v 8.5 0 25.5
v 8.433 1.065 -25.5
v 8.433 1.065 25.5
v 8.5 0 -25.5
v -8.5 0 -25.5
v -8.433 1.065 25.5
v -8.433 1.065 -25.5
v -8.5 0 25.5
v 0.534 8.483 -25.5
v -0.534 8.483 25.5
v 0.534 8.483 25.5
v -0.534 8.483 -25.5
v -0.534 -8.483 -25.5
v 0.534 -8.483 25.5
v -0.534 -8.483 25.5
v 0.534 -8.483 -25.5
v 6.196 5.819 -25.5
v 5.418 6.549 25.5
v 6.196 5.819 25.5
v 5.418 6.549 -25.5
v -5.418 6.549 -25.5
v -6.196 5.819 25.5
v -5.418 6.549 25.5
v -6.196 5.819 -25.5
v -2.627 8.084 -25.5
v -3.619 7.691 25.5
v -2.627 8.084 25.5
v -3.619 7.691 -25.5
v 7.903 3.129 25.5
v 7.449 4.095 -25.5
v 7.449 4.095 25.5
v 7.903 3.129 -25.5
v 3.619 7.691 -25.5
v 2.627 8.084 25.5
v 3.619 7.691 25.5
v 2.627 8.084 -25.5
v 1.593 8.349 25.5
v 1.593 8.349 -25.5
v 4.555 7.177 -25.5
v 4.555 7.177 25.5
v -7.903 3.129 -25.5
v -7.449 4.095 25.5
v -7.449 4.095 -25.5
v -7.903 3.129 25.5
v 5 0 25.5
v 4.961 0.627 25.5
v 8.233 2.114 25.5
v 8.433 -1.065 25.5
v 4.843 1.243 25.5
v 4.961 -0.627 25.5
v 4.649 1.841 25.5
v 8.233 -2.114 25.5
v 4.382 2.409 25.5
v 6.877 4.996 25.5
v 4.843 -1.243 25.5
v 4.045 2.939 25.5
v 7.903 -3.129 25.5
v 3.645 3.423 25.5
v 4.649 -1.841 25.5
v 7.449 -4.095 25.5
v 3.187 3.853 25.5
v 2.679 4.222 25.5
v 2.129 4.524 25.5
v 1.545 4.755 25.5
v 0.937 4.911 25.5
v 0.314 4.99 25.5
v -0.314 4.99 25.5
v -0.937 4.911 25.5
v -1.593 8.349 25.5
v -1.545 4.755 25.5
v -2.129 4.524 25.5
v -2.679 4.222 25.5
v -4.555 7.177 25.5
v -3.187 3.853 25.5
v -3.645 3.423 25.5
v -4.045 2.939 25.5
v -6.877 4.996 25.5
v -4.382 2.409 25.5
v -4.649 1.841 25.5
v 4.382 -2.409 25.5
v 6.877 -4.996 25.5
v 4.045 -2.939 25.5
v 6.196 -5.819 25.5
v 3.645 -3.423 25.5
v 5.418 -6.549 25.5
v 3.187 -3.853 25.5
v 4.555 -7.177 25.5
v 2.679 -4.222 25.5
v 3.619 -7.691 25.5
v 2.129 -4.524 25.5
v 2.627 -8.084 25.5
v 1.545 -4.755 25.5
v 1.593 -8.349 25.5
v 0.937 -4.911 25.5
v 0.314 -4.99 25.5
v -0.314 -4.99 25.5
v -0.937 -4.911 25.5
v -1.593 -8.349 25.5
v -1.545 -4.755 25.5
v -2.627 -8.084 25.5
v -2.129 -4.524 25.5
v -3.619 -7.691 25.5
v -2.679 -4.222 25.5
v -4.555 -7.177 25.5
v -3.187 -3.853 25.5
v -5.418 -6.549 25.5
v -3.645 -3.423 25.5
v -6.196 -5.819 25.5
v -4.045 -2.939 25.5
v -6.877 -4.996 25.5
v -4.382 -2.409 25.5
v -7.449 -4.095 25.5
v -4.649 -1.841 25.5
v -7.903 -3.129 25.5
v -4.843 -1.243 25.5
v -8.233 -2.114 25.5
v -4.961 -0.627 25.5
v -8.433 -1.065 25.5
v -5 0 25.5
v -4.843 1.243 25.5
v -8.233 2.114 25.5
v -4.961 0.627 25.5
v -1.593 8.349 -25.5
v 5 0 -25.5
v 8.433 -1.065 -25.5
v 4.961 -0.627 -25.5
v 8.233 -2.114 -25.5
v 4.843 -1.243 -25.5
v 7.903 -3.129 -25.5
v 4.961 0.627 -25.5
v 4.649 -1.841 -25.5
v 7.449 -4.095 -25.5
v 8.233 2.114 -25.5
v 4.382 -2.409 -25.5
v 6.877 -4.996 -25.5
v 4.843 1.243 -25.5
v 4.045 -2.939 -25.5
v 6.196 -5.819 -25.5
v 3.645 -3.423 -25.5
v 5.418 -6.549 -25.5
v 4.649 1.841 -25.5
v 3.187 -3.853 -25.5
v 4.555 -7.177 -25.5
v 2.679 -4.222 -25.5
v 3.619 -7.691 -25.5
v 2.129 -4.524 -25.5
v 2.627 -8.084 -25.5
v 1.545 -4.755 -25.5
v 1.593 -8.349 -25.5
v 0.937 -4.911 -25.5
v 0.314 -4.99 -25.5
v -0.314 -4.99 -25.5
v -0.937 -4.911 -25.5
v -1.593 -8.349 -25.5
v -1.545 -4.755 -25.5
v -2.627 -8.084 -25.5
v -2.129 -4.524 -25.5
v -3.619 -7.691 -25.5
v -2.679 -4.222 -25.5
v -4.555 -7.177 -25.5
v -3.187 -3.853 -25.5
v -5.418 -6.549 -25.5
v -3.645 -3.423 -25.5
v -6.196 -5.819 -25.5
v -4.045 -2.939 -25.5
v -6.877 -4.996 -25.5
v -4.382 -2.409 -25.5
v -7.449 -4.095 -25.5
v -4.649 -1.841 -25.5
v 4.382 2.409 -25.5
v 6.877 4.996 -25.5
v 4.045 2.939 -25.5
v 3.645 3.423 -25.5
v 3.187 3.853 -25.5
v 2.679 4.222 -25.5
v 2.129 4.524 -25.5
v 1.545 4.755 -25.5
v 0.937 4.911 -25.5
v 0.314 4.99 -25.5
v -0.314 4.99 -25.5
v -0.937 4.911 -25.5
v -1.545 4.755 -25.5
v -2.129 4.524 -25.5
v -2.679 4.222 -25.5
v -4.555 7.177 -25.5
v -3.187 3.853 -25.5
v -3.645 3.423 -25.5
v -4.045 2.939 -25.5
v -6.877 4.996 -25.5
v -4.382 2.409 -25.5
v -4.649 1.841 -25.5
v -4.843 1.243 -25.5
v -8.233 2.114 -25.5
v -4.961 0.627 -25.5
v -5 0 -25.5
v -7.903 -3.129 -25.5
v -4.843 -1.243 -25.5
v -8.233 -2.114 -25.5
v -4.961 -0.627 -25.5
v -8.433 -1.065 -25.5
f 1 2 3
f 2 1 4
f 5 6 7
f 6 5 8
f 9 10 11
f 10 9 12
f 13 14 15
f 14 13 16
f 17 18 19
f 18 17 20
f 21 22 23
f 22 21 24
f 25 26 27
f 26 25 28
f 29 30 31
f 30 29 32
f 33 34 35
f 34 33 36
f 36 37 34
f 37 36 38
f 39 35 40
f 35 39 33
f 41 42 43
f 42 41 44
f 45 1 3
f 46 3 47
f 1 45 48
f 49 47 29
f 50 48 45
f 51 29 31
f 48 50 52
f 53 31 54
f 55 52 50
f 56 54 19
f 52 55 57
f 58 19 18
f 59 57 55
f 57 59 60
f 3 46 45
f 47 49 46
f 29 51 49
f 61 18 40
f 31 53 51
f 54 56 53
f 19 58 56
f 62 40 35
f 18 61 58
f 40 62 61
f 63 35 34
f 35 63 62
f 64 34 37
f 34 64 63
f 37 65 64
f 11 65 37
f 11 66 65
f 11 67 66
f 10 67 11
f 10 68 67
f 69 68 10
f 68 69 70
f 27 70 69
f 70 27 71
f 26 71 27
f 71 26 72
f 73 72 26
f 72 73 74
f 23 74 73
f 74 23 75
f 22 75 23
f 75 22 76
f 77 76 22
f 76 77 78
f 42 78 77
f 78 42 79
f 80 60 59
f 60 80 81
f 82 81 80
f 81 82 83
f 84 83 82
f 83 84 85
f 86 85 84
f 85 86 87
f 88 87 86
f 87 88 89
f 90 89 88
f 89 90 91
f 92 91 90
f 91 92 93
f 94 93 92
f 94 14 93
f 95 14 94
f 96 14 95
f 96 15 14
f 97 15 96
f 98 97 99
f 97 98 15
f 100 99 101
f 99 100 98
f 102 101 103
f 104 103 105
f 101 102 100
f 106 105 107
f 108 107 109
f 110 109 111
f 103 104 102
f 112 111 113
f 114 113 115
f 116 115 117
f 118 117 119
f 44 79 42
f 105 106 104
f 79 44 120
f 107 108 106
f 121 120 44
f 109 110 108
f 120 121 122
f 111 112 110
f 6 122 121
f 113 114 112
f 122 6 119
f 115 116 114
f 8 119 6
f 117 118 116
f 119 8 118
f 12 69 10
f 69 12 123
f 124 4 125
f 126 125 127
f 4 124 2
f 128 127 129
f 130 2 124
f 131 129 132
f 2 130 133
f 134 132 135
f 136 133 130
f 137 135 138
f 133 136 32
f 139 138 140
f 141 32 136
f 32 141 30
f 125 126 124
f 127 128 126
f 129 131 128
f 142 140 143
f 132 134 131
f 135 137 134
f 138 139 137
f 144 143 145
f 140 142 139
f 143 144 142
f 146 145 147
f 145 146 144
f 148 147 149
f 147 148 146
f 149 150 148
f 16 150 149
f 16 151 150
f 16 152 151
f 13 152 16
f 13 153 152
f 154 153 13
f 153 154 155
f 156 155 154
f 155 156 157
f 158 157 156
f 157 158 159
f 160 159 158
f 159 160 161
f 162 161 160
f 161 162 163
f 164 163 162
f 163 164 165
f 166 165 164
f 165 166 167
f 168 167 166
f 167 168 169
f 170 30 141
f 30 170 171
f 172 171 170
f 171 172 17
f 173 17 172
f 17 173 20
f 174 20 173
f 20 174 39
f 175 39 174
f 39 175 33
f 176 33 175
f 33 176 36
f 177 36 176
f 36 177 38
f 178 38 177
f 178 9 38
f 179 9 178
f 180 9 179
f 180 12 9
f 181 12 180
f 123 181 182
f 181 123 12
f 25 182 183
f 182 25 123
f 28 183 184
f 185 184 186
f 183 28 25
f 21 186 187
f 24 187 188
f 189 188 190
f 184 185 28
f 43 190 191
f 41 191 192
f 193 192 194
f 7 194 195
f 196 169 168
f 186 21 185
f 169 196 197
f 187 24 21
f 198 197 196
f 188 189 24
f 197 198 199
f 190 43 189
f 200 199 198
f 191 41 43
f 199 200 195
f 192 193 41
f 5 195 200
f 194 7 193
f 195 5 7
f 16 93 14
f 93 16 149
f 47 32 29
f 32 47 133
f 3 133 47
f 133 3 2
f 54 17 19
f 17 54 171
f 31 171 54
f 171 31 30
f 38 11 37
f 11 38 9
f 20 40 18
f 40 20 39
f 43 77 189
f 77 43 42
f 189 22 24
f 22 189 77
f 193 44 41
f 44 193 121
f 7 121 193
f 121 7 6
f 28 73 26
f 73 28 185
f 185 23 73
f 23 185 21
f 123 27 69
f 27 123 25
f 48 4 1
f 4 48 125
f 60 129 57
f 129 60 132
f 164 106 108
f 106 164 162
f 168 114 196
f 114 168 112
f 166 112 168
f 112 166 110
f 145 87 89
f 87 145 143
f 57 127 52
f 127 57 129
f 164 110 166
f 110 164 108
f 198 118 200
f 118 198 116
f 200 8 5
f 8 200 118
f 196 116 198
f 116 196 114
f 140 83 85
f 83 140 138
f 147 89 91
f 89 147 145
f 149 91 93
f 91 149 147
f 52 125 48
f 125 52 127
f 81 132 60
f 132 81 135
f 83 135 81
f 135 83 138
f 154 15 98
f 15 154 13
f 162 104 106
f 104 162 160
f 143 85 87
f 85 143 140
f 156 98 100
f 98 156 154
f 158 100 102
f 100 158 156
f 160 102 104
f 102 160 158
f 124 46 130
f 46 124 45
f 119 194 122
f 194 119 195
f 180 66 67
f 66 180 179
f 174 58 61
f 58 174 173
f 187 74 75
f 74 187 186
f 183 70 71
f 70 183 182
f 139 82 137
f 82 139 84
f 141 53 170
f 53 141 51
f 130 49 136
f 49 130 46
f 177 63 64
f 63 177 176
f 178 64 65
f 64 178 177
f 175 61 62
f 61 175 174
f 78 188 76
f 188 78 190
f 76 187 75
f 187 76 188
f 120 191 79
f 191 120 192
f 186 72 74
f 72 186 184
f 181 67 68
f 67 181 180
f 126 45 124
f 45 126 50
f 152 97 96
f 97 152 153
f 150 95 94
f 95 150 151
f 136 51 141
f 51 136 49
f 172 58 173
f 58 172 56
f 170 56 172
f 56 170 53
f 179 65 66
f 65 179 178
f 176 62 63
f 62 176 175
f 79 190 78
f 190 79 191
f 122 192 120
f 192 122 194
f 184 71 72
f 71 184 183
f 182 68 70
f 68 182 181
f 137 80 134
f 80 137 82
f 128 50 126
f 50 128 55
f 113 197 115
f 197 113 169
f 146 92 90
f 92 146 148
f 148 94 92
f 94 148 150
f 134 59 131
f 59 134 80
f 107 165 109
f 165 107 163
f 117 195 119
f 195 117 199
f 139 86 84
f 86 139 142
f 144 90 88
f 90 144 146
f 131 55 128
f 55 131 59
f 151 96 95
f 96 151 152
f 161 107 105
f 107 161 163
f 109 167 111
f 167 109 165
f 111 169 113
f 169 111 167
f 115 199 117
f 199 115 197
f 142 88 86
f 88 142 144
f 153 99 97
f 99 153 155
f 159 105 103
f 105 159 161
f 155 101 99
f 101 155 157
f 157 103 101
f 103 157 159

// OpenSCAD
$fn = 50;


difference() {
	union() {
		translate(v = [0, 0, -25.5000000000]) {
			cylinder(h = 51, r = 8.5000000000);
		}
	}
	union() {
		translate(v = [0, 0, -100.0000000000]) {
			cylinder(h = 200, r = 5.0000000000);
		}
	}
}
